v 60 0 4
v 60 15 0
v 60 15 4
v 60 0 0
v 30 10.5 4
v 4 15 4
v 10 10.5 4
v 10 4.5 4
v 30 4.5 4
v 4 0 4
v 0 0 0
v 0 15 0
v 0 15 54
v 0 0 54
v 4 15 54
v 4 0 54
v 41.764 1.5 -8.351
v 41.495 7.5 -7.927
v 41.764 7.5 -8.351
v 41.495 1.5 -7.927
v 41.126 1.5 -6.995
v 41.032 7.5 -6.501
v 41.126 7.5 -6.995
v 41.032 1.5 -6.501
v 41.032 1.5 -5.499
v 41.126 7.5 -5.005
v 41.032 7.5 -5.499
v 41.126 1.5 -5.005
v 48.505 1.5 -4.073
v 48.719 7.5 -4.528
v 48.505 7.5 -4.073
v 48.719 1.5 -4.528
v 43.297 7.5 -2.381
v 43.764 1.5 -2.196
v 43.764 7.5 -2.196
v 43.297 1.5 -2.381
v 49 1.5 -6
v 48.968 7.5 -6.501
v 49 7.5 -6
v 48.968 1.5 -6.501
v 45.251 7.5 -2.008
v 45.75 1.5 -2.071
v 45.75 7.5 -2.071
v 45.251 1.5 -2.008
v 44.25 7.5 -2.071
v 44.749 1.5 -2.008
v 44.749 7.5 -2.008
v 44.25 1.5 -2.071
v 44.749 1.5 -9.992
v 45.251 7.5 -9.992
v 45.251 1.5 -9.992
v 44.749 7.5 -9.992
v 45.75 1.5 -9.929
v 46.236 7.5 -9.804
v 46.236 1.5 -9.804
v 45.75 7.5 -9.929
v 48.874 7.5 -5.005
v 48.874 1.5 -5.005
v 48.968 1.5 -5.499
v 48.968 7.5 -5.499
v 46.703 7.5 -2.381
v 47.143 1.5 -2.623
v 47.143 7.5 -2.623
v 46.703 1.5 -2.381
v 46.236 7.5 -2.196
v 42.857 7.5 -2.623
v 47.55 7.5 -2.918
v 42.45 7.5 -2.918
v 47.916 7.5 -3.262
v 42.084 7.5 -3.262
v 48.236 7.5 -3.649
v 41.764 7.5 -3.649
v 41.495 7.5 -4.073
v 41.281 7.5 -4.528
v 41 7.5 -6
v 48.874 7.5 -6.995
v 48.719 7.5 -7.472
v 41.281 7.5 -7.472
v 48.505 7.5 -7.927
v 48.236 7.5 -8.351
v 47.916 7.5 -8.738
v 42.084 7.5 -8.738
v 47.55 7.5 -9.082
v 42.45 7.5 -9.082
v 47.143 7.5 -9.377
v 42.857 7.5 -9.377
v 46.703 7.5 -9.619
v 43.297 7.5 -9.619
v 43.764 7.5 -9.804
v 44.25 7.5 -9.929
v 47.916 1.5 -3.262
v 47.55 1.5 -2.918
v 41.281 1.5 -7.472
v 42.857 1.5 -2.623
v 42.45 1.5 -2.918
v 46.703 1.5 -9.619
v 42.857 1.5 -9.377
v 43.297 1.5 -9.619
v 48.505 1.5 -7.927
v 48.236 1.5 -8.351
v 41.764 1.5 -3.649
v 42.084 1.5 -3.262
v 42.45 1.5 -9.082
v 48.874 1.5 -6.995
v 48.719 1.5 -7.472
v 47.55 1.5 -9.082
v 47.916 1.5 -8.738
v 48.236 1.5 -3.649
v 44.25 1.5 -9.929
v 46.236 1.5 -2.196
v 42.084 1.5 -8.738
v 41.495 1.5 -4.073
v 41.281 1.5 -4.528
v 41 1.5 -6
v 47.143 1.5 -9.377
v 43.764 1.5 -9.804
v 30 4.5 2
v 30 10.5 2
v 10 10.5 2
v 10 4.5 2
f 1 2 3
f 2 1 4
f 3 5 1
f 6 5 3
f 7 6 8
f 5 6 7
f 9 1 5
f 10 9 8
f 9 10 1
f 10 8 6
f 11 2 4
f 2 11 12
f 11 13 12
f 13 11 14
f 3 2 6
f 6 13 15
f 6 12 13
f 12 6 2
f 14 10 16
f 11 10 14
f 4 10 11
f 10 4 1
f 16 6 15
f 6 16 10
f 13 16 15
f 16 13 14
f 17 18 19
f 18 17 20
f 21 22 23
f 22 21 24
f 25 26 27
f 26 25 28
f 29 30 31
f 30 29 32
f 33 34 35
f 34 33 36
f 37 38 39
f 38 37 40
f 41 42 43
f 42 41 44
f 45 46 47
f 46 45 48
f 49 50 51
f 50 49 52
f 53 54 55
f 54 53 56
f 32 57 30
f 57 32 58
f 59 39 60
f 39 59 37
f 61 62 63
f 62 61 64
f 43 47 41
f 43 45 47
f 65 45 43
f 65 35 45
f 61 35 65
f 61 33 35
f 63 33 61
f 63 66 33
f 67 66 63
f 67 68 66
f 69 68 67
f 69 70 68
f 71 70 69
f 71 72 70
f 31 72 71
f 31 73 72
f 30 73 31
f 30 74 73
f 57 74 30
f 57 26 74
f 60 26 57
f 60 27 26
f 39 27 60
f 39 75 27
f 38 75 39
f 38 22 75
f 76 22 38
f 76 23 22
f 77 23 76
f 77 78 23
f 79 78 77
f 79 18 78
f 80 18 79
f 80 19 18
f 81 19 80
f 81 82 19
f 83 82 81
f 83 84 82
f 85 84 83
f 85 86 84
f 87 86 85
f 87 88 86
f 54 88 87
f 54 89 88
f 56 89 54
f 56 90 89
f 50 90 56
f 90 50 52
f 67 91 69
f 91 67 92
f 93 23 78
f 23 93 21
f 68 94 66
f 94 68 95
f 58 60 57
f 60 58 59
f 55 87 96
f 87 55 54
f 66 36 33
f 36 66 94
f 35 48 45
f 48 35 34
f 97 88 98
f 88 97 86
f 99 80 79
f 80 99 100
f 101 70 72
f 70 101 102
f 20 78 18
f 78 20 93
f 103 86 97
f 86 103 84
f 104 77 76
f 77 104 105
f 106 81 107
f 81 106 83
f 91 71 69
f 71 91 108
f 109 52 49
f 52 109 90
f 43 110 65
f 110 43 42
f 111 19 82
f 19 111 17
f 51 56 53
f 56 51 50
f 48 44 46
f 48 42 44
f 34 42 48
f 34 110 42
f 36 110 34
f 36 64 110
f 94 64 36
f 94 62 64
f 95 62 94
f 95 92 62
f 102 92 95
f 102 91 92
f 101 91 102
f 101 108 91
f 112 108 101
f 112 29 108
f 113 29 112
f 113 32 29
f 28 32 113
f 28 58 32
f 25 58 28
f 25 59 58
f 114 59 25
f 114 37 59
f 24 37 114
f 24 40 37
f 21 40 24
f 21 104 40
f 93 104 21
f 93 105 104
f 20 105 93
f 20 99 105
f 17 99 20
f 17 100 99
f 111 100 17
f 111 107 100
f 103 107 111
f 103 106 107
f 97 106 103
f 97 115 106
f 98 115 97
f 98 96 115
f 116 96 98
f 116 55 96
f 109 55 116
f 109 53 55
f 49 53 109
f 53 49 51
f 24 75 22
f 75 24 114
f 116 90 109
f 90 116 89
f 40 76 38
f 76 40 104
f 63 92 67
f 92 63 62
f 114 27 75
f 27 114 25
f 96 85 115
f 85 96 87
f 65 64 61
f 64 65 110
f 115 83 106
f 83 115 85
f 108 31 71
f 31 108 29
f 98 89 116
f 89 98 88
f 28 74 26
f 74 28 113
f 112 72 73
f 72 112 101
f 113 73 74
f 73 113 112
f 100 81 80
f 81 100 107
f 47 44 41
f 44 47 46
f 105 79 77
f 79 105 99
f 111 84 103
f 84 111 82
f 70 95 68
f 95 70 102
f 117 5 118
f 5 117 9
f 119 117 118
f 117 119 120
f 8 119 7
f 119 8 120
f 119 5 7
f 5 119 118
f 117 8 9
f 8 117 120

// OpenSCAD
// Parameters
bracket_thickness = 4;
horizontal_length = 60;
vertical_height = 50;
bracket_width = 15;

slot_length = 20;
slot_width = 6;
slot_depth = 2;

peg_radius = 4;
peg_height = 6;

// Main L-bracket
module angled_mounting_bracket() {
    difference() {
        union() {
            // Horizontal arm
            cube([horizontal_length, bracket_width, bracket_thickness]);

            // Vertical arm
            translate([0, 0, bracket_thickness])
                cube([bracket_thickness, bracket_width, vertical_height]);

            // Cylindrical peg on bottom
            translate([horizontal_length - 15, bracket_width / 2, -peg_height])
                rotate([90, 0, 0])
                    cylinder(h = peg_height, r = peg_radius, $fn = 50);
        }

        // Recessed slot on top of horizontal arm
        translate([10, (bracket_width - slot_width) / 2, bracket_thickness - slot_depth])
            cube([slot_length, slot_width, slot_depth]);
    }
}

// Render the bracket
angled_mounting_bracket();
